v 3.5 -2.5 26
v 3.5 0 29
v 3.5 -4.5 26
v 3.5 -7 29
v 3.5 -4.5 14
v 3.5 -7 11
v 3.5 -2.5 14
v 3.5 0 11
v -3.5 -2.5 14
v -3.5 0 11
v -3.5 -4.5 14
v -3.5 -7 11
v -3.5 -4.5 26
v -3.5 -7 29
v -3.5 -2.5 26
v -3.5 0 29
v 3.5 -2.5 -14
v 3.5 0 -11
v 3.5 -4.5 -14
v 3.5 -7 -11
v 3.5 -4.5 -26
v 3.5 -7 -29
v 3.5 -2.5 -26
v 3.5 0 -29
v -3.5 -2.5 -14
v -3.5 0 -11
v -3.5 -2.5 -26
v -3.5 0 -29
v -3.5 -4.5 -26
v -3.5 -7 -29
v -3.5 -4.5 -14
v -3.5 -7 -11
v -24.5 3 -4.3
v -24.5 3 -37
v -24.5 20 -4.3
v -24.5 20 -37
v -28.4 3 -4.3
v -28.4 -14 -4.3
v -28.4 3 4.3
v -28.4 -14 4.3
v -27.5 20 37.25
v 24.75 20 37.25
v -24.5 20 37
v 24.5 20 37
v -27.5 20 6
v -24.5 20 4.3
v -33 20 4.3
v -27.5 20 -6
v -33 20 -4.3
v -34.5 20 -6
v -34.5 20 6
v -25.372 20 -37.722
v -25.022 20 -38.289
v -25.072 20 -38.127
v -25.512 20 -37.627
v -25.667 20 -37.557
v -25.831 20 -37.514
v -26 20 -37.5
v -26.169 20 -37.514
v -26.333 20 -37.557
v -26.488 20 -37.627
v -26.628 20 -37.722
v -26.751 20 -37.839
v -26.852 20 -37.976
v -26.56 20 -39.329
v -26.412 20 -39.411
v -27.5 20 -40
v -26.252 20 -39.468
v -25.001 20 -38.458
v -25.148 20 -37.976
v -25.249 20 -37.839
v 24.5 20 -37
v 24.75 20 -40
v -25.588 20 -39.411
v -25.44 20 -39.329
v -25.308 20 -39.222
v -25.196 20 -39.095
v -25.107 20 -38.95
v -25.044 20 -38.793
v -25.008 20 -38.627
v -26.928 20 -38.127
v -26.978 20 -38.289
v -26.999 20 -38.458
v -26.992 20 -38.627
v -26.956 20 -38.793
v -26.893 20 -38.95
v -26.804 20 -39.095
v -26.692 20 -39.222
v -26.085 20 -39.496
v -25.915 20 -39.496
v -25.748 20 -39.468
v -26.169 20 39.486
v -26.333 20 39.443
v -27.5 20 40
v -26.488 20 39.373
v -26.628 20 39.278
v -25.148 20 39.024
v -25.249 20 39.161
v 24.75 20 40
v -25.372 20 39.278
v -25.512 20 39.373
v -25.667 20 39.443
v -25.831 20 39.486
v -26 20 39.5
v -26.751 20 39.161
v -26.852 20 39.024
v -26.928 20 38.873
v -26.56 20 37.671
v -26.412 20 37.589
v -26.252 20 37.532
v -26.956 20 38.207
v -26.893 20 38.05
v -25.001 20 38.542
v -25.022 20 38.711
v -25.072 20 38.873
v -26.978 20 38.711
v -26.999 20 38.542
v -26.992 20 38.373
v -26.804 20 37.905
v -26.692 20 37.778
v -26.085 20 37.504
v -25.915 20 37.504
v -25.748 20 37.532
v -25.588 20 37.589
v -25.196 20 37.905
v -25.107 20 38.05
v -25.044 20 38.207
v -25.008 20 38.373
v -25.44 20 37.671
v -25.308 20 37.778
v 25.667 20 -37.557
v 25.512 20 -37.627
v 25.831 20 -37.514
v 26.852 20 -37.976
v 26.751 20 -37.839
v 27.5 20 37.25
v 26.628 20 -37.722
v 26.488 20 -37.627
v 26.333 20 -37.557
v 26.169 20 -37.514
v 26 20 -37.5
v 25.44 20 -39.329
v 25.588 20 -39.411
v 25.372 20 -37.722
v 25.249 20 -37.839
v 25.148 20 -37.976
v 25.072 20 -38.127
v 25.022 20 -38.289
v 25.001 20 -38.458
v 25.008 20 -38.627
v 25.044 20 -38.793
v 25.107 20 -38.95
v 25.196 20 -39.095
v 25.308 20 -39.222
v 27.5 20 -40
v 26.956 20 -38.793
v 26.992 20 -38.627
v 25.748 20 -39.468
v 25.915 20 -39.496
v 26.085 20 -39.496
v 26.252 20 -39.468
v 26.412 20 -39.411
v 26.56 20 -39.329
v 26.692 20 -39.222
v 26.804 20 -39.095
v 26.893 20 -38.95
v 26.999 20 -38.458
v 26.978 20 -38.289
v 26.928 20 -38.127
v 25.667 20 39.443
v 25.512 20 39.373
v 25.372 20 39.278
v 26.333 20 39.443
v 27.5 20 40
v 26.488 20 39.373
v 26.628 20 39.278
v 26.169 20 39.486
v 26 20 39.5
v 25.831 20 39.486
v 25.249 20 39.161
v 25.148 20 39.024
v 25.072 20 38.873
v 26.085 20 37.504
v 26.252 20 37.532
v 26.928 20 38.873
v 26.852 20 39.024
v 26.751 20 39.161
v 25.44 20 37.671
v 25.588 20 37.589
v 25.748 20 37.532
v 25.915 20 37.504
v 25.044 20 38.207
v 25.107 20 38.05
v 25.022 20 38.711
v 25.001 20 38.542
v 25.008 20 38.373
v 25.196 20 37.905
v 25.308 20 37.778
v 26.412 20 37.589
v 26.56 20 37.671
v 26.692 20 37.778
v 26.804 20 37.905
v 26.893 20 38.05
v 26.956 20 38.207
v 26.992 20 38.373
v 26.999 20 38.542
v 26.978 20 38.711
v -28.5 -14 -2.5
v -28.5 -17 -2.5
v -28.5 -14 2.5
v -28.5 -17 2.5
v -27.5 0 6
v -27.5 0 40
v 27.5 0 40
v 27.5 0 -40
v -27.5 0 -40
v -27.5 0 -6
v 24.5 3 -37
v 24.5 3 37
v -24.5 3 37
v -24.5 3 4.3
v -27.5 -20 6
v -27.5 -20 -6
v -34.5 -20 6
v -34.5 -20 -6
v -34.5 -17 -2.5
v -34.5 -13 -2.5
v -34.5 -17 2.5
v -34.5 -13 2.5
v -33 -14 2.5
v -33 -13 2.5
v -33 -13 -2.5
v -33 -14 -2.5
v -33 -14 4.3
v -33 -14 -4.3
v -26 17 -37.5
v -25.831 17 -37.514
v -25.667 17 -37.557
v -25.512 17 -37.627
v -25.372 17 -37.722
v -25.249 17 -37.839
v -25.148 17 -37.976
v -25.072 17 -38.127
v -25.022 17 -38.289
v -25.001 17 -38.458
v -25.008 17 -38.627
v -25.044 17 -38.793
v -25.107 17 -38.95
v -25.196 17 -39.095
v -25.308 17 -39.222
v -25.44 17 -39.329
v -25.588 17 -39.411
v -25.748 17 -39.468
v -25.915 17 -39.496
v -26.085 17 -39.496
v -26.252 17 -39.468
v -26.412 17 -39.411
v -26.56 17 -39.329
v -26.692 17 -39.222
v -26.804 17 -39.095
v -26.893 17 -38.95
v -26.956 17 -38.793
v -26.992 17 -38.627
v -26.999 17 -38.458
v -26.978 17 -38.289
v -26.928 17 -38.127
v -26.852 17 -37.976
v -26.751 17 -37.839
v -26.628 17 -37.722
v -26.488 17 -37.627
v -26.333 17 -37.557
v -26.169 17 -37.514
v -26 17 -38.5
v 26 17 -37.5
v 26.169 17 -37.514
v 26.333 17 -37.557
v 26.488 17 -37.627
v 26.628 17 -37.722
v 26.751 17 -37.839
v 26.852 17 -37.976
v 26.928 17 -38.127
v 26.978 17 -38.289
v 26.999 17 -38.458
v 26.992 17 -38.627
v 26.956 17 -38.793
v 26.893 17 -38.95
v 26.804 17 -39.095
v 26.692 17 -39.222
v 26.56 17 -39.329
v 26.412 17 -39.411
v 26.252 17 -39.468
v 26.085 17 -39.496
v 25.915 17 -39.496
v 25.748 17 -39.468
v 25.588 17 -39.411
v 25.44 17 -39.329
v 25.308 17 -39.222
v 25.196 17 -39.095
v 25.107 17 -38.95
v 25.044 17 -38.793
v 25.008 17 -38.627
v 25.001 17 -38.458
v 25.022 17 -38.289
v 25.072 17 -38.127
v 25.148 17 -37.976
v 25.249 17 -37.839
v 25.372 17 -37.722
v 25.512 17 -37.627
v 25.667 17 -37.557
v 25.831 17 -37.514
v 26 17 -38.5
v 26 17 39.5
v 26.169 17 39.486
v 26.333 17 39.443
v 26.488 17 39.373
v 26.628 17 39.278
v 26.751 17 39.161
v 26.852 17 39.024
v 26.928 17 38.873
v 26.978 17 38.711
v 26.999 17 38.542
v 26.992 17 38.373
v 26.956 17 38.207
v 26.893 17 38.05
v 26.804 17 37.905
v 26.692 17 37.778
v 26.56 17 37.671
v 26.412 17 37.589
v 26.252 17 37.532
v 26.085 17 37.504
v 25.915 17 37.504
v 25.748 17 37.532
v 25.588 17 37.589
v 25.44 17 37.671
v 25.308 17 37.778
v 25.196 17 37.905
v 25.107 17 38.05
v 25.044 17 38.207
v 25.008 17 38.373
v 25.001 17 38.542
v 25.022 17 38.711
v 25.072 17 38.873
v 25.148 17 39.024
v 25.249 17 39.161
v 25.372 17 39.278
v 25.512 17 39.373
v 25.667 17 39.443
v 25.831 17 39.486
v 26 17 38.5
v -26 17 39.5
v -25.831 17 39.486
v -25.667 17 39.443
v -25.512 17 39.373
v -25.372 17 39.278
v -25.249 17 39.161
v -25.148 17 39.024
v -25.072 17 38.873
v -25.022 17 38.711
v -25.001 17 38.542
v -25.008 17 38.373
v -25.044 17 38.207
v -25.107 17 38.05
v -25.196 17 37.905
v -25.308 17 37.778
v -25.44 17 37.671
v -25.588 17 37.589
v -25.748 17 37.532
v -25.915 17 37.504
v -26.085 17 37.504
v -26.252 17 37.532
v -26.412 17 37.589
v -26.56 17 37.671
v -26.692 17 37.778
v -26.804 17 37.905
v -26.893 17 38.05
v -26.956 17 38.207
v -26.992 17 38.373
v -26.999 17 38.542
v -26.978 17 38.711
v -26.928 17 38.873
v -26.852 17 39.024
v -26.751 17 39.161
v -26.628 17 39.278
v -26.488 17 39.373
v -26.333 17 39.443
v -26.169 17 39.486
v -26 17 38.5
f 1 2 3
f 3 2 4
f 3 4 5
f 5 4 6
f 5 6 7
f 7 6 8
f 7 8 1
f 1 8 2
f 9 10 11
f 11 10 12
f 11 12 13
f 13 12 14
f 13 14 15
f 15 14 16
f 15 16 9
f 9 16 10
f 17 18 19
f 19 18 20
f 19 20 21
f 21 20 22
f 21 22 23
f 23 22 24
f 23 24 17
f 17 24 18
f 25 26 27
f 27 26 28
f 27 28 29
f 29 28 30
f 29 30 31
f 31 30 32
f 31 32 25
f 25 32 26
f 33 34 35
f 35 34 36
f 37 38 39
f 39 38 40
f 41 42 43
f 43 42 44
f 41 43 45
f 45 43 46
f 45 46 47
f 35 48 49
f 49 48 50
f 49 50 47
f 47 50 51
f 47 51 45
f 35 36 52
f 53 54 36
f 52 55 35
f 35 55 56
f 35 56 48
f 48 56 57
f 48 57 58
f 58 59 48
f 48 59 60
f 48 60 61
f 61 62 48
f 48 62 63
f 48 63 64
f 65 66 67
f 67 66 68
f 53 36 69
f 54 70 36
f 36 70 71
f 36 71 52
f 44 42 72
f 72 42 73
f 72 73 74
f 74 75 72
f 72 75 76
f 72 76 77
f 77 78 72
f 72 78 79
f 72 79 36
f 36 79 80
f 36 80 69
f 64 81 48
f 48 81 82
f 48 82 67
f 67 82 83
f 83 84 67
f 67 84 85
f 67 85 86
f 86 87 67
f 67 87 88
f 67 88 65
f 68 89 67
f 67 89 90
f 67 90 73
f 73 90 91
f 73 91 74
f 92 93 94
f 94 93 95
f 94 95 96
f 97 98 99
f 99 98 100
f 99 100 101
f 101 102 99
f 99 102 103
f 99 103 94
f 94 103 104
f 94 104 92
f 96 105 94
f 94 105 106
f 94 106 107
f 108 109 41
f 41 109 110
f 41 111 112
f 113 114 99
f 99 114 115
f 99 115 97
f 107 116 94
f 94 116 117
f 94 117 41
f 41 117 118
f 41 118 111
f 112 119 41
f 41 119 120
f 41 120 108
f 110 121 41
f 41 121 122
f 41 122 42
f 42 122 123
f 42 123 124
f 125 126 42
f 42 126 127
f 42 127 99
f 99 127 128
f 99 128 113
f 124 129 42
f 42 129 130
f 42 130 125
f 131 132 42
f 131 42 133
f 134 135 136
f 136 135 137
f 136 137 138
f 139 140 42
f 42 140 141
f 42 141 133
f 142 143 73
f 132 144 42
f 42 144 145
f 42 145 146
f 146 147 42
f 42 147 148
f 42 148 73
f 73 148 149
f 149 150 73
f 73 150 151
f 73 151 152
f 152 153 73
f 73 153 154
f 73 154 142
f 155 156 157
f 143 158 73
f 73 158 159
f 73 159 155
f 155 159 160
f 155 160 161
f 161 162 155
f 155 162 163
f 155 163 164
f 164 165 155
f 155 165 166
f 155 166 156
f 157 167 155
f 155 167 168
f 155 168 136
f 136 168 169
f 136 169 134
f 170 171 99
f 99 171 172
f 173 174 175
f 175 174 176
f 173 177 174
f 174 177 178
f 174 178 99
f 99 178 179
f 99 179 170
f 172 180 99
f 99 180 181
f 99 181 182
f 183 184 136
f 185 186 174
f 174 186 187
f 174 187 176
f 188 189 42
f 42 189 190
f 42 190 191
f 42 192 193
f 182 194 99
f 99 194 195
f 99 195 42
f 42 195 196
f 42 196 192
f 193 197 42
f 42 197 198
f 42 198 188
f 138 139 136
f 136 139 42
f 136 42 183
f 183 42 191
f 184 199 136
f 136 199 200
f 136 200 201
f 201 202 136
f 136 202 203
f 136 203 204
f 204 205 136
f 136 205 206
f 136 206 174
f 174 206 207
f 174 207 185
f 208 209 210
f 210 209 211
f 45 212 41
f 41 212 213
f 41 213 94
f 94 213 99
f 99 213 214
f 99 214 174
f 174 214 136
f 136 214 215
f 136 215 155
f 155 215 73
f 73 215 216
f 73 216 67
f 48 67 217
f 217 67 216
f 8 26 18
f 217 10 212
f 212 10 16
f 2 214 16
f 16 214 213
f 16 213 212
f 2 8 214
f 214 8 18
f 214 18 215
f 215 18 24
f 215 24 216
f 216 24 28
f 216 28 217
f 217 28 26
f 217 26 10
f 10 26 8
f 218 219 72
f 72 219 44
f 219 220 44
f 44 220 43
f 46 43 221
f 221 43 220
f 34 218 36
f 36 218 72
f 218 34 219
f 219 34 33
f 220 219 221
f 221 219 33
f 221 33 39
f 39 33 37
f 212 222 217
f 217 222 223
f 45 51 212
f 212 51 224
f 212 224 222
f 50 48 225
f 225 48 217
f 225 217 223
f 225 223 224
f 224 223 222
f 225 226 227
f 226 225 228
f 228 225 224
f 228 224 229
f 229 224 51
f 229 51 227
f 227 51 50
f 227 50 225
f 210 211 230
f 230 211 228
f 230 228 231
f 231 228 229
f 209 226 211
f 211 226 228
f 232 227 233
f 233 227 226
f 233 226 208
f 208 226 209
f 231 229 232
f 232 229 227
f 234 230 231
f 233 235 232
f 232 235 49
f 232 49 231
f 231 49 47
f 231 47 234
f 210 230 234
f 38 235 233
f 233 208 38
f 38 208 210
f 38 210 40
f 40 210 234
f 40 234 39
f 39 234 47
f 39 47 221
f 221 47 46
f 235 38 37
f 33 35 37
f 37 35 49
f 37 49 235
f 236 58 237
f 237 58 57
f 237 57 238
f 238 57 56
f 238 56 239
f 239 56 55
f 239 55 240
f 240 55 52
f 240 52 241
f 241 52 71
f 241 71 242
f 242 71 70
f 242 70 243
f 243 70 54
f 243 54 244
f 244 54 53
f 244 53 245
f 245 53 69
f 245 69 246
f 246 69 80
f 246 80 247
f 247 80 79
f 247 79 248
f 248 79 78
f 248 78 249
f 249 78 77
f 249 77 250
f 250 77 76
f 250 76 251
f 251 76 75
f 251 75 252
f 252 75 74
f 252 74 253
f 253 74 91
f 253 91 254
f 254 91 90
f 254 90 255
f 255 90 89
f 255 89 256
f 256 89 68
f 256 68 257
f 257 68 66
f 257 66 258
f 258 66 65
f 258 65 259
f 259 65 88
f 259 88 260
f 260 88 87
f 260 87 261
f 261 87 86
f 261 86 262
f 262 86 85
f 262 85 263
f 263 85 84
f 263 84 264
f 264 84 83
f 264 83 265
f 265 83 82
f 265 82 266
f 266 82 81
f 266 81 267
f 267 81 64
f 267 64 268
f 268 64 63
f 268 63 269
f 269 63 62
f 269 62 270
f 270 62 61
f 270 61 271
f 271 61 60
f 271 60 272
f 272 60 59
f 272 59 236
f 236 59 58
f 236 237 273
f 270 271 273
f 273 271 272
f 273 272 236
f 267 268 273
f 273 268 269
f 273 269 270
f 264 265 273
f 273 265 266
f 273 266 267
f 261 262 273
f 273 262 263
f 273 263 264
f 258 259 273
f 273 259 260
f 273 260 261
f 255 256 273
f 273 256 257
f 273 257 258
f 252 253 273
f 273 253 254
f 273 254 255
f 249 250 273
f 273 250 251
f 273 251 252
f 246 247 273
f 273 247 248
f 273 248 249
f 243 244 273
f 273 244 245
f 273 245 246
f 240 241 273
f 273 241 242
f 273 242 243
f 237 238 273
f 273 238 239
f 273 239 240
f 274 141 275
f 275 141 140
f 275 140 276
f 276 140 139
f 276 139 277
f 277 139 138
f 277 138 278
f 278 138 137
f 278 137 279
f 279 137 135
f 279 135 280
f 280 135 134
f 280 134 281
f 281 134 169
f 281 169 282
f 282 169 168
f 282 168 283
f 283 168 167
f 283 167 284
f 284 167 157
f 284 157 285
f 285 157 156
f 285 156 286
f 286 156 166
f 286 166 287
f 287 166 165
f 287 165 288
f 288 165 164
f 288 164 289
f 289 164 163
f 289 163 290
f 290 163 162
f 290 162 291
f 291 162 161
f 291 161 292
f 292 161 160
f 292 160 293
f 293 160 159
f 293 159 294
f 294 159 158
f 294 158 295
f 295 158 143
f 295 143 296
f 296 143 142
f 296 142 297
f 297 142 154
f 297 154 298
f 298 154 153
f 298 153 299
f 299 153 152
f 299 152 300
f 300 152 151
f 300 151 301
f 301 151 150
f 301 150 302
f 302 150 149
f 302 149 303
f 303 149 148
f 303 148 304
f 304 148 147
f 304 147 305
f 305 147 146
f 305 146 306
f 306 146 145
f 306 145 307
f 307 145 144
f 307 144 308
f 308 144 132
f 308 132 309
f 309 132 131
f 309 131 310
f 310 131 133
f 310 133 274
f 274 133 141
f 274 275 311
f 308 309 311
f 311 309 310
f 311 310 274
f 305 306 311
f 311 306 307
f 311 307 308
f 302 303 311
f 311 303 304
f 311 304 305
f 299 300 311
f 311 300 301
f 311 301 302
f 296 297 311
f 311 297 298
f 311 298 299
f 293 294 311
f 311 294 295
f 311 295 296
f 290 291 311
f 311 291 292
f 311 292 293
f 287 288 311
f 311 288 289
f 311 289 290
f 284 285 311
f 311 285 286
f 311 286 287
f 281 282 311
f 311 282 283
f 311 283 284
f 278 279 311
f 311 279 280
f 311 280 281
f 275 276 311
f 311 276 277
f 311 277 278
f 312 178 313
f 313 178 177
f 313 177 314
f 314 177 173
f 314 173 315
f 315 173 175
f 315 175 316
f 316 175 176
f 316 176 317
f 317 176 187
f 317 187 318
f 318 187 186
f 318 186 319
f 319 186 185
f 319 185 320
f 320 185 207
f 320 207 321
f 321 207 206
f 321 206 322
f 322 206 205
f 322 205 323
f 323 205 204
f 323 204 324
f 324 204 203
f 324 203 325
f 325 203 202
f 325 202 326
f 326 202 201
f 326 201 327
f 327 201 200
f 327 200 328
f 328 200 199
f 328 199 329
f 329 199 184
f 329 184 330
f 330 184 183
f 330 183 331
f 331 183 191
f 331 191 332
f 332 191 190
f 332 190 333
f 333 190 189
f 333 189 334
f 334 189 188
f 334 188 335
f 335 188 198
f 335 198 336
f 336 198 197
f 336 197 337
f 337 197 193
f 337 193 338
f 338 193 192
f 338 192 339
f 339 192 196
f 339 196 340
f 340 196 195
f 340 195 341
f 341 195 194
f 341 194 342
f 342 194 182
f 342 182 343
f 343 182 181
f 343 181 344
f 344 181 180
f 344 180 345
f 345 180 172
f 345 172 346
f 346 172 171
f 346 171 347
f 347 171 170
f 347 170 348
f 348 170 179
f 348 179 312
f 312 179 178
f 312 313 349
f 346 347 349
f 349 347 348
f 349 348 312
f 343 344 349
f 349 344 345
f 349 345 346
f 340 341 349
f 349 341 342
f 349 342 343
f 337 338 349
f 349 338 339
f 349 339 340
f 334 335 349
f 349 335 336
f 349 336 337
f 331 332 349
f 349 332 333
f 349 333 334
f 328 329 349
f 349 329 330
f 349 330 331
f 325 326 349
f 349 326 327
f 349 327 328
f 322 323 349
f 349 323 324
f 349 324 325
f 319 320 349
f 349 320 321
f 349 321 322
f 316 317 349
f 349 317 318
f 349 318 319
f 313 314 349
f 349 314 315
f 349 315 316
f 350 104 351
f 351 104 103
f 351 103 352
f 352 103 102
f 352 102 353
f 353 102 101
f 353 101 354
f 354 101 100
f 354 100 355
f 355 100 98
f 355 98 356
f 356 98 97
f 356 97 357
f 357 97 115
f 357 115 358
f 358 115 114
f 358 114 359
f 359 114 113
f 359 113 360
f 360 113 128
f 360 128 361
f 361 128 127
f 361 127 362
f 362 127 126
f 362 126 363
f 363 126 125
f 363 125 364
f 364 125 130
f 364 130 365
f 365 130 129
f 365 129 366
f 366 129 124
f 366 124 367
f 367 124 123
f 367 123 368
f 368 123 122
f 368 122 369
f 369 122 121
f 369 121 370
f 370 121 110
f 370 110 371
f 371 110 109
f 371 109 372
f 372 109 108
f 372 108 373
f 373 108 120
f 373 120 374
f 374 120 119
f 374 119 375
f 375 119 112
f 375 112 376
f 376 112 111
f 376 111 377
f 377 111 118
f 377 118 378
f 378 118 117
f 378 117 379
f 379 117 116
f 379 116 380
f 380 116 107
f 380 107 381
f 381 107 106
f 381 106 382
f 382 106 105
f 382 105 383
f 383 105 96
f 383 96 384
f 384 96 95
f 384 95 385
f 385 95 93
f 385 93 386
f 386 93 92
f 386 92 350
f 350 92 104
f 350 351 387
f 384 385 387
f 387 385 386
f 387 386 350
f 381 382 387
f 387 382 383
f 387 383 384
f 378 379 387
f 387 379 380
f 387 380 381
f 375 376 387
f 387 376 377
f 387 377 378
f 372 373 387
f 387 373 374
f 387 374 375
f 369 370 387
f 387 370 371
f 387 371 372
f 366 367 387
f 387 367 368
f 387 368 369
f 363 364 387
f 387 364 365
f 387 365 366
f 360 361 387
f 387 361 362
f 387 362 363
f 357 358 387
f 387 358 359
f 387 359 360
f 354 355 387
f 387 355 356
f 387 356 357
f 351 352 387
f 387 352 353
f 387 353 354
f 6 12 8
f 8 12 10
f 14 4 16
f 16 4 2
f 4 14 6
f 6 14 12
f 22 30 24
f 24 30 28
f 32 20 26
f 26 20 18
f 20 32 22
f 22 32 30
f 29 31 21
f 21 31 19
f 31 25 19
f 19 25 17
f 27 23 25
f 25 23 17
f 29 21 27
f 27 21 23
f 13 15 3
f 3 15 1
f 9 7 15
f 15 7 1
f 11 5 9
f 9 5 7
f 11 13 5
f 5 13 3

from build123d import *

# Parameters (mm, degrees)
SKETCH1_W               = 55
SKETCH1_H               = 80
BOSS_EXTRUDE1_DEPTH     = 20
SKETCH2_W               = 49
SKETCH2_H               = 74
CUT_EXTRUDE1_DEPTH      = 17
SKETCH4_W               = 16
SKETCH4_H               = 12
BOSS_EXTRUDE2_DEPTH     = 40
SKETCH6_W               = 18
SKETCH6_H               = 20
CUT_EXTRUDE2_DEPTH      = 43
SKETCH5_W               = 5
SKETCH5_H               = 4
CUT_EXTRUDE3_DEPTH      = 15
SKETCH7_W               = 4.6
SKETCH7_H               = 8.6
CUT_EXTRUDE6_DEPTH      = 34
SKETCH9_W               = 3.9
SKETCH9_H               = 8.6
CUT_EXTRUDE7_DEPTH      = 17
SKETCH10_R              = 1
CUT_EXTRUDE8_DEPTH      = 3
SKETCH13_W              = 7
SKETCH13_H              = 18
BOSS_EXTRUDE3_DEPTH     = 7
CUT_EXTRUDE9_DEPTH      = 3
CUT_EXTRUDE9_DEPTH_BACK = 9
SKETCH14_W              = 12
SKETCH14_H              = 2


with BuildPart() as part:
    # Sketch1 → Boss-Extrude1 (new body)
    with BuildSketch(Plane(origin=(0, 0, 0), x_dir=(1, 0, 0), z_dir=(0, 1, 0))):
        Rectangle(SKETCH1_W, SKETCH1_H)
    extrude(amount=BOSS_EXTRUDE1_DEPTH)

    # Sketch2 → Cut-Extrude1 (cut)
    with BuildSketch(Plane(origin=(0, 20, 0), x_dir=(1, 0, 0), z_dir=(0, 1, 0))):
        Rectangle(SKETCH2_W, SKETCH2_H)
    extrude(amount=-CUT_EXTRUDE1_DEPTH, mode=Mode.SUBTRACT)

    # Sketch4 → Boss-Extrude2 (add)
    with BuildSketch(Plane(origin=(0, 20, 0), x_dir=(1, 0, 0), z_dir=(0, 1, 0))):
        with Locations((-35.5, 0)):
            Rectangle(SKETCH4_W, SKETCH4_H)
    extrude(amount=-BOSS_EXTRUDE2_DEPTH)

    # Sketch6 → Cut-Extrude2 (cut)
    with BuildSketch(Plane(origin=(0, 20, 0), x_dir=(1, 0, 0), z_dir=(0, 1, 0))):
        with Locations((-43.5, 0)):
            Rectangle(SKETCH6_W, SKETCH6_H)
    extrude(amount=-CUT_EXTRUDE2_DEPTH, mode=Mode.SUBTRACT)

    # Sketch5 → Cut-Extrude3 (cut)
    with BuildSketch(Plane.ZY.offset(43.5)):
        with Locations((0, -15)):
            Rectangle(SKETCH5_W, SKETCH5_H)
    extrude(amount=-CUT_EXTRUDE3_DEPTH, mode=Mode.SUBTRACT)

    # Sketch7 → Cut-Extrude6 (cut)
    with BuildSketch(Plane(origin=(0, 20, 0), x_dir=(1, 0, 0), z_dir=(0, 1, 0))):
        with Locations((-30.7, 0)):
            Rectangle(SKETCH7_W, SKETCH7_H)
    extrude(amount=-CUT_EXTRUDE6_DEPTH, mode=Mode.SUBTRACT)

    # Sketch9 → Cut-Extrude7 (cut)
    with BuildSketch(Plane(origin=(0, 20, 0), x_dir=(1, 0, 0), z_dir=(0, 1, 0))):
        with Locations((-26.45, 0)):
            Rectangle(SKETCH9_W, SKETCH9_H)
    extrude(amount=-CUT_EXTRUDE7_DEPTH, mode=Mode.SUBTRACT)

    # Sketch10 → Cut-Extrude8 (cut)
    with BuildSketch(Plane(origin=(0, 20, 0), x_dir=(1, 0, 0), z_dir=(0, 1, 0))):
        with Locations(Location((-26, -38.5, 0), (0, 0, 270))):
            Circle(SKETCH10_R)
        with Locations(Location((26, -38.5, 0), (0, 0, 270))):
            Circle(SKETCH10_R)
        with Locations(Location((26, 38.5, 0), (0, 0, 270))):
            Circle(SKETCH10_R)
        with Locations(Location((-26, 38.5, 0), (0, 0, 270))):
            Circle(SKETCH10_R)
    extrude(amount=-CUT_EXTRUDE8_DEPTH, mode=Mode.SUBTRACT)

    # Sketch13 → Boss-Extrude3 (add)
    with BuildSketch(Plane(origin=(0, 0, 0), x_dir=(-1, 0, 0), z_dir=(0, -1, 0))):
        with Locations((0, 20)):
            Rectangle(SKETCH13_W, SKETCH13_H)
        with Locations((0, -20)):
            Rectangle(SKETCH13_W, SKETCH13_H)
    extrude(amount=BOSS_EXTRUDE3_DEPTH)

    # Sketch14 → Cut-Extrude9 (cut, two sides: drawn at the far end of the back side and taken through both)
    with BuildSketch(Plane.ZY.offset(3.5).offset(-CUT_EXTRUDE9_DEPTH_BACK)):
        with Locations((-20, -3.5)):
            Rectangle(SKETCH14_W, SKETCH14_H)
        with Locations((20, -3.5)):
            Rectangle(SKETCH14_W, SKETCH14_H)
    extrude(amount=CUT_EXTRUDE9_DEPTH + CUT_EXTRUDE9_DEPTH_BACK, mode=Mode.SUBTRACT)


solid = part.part
